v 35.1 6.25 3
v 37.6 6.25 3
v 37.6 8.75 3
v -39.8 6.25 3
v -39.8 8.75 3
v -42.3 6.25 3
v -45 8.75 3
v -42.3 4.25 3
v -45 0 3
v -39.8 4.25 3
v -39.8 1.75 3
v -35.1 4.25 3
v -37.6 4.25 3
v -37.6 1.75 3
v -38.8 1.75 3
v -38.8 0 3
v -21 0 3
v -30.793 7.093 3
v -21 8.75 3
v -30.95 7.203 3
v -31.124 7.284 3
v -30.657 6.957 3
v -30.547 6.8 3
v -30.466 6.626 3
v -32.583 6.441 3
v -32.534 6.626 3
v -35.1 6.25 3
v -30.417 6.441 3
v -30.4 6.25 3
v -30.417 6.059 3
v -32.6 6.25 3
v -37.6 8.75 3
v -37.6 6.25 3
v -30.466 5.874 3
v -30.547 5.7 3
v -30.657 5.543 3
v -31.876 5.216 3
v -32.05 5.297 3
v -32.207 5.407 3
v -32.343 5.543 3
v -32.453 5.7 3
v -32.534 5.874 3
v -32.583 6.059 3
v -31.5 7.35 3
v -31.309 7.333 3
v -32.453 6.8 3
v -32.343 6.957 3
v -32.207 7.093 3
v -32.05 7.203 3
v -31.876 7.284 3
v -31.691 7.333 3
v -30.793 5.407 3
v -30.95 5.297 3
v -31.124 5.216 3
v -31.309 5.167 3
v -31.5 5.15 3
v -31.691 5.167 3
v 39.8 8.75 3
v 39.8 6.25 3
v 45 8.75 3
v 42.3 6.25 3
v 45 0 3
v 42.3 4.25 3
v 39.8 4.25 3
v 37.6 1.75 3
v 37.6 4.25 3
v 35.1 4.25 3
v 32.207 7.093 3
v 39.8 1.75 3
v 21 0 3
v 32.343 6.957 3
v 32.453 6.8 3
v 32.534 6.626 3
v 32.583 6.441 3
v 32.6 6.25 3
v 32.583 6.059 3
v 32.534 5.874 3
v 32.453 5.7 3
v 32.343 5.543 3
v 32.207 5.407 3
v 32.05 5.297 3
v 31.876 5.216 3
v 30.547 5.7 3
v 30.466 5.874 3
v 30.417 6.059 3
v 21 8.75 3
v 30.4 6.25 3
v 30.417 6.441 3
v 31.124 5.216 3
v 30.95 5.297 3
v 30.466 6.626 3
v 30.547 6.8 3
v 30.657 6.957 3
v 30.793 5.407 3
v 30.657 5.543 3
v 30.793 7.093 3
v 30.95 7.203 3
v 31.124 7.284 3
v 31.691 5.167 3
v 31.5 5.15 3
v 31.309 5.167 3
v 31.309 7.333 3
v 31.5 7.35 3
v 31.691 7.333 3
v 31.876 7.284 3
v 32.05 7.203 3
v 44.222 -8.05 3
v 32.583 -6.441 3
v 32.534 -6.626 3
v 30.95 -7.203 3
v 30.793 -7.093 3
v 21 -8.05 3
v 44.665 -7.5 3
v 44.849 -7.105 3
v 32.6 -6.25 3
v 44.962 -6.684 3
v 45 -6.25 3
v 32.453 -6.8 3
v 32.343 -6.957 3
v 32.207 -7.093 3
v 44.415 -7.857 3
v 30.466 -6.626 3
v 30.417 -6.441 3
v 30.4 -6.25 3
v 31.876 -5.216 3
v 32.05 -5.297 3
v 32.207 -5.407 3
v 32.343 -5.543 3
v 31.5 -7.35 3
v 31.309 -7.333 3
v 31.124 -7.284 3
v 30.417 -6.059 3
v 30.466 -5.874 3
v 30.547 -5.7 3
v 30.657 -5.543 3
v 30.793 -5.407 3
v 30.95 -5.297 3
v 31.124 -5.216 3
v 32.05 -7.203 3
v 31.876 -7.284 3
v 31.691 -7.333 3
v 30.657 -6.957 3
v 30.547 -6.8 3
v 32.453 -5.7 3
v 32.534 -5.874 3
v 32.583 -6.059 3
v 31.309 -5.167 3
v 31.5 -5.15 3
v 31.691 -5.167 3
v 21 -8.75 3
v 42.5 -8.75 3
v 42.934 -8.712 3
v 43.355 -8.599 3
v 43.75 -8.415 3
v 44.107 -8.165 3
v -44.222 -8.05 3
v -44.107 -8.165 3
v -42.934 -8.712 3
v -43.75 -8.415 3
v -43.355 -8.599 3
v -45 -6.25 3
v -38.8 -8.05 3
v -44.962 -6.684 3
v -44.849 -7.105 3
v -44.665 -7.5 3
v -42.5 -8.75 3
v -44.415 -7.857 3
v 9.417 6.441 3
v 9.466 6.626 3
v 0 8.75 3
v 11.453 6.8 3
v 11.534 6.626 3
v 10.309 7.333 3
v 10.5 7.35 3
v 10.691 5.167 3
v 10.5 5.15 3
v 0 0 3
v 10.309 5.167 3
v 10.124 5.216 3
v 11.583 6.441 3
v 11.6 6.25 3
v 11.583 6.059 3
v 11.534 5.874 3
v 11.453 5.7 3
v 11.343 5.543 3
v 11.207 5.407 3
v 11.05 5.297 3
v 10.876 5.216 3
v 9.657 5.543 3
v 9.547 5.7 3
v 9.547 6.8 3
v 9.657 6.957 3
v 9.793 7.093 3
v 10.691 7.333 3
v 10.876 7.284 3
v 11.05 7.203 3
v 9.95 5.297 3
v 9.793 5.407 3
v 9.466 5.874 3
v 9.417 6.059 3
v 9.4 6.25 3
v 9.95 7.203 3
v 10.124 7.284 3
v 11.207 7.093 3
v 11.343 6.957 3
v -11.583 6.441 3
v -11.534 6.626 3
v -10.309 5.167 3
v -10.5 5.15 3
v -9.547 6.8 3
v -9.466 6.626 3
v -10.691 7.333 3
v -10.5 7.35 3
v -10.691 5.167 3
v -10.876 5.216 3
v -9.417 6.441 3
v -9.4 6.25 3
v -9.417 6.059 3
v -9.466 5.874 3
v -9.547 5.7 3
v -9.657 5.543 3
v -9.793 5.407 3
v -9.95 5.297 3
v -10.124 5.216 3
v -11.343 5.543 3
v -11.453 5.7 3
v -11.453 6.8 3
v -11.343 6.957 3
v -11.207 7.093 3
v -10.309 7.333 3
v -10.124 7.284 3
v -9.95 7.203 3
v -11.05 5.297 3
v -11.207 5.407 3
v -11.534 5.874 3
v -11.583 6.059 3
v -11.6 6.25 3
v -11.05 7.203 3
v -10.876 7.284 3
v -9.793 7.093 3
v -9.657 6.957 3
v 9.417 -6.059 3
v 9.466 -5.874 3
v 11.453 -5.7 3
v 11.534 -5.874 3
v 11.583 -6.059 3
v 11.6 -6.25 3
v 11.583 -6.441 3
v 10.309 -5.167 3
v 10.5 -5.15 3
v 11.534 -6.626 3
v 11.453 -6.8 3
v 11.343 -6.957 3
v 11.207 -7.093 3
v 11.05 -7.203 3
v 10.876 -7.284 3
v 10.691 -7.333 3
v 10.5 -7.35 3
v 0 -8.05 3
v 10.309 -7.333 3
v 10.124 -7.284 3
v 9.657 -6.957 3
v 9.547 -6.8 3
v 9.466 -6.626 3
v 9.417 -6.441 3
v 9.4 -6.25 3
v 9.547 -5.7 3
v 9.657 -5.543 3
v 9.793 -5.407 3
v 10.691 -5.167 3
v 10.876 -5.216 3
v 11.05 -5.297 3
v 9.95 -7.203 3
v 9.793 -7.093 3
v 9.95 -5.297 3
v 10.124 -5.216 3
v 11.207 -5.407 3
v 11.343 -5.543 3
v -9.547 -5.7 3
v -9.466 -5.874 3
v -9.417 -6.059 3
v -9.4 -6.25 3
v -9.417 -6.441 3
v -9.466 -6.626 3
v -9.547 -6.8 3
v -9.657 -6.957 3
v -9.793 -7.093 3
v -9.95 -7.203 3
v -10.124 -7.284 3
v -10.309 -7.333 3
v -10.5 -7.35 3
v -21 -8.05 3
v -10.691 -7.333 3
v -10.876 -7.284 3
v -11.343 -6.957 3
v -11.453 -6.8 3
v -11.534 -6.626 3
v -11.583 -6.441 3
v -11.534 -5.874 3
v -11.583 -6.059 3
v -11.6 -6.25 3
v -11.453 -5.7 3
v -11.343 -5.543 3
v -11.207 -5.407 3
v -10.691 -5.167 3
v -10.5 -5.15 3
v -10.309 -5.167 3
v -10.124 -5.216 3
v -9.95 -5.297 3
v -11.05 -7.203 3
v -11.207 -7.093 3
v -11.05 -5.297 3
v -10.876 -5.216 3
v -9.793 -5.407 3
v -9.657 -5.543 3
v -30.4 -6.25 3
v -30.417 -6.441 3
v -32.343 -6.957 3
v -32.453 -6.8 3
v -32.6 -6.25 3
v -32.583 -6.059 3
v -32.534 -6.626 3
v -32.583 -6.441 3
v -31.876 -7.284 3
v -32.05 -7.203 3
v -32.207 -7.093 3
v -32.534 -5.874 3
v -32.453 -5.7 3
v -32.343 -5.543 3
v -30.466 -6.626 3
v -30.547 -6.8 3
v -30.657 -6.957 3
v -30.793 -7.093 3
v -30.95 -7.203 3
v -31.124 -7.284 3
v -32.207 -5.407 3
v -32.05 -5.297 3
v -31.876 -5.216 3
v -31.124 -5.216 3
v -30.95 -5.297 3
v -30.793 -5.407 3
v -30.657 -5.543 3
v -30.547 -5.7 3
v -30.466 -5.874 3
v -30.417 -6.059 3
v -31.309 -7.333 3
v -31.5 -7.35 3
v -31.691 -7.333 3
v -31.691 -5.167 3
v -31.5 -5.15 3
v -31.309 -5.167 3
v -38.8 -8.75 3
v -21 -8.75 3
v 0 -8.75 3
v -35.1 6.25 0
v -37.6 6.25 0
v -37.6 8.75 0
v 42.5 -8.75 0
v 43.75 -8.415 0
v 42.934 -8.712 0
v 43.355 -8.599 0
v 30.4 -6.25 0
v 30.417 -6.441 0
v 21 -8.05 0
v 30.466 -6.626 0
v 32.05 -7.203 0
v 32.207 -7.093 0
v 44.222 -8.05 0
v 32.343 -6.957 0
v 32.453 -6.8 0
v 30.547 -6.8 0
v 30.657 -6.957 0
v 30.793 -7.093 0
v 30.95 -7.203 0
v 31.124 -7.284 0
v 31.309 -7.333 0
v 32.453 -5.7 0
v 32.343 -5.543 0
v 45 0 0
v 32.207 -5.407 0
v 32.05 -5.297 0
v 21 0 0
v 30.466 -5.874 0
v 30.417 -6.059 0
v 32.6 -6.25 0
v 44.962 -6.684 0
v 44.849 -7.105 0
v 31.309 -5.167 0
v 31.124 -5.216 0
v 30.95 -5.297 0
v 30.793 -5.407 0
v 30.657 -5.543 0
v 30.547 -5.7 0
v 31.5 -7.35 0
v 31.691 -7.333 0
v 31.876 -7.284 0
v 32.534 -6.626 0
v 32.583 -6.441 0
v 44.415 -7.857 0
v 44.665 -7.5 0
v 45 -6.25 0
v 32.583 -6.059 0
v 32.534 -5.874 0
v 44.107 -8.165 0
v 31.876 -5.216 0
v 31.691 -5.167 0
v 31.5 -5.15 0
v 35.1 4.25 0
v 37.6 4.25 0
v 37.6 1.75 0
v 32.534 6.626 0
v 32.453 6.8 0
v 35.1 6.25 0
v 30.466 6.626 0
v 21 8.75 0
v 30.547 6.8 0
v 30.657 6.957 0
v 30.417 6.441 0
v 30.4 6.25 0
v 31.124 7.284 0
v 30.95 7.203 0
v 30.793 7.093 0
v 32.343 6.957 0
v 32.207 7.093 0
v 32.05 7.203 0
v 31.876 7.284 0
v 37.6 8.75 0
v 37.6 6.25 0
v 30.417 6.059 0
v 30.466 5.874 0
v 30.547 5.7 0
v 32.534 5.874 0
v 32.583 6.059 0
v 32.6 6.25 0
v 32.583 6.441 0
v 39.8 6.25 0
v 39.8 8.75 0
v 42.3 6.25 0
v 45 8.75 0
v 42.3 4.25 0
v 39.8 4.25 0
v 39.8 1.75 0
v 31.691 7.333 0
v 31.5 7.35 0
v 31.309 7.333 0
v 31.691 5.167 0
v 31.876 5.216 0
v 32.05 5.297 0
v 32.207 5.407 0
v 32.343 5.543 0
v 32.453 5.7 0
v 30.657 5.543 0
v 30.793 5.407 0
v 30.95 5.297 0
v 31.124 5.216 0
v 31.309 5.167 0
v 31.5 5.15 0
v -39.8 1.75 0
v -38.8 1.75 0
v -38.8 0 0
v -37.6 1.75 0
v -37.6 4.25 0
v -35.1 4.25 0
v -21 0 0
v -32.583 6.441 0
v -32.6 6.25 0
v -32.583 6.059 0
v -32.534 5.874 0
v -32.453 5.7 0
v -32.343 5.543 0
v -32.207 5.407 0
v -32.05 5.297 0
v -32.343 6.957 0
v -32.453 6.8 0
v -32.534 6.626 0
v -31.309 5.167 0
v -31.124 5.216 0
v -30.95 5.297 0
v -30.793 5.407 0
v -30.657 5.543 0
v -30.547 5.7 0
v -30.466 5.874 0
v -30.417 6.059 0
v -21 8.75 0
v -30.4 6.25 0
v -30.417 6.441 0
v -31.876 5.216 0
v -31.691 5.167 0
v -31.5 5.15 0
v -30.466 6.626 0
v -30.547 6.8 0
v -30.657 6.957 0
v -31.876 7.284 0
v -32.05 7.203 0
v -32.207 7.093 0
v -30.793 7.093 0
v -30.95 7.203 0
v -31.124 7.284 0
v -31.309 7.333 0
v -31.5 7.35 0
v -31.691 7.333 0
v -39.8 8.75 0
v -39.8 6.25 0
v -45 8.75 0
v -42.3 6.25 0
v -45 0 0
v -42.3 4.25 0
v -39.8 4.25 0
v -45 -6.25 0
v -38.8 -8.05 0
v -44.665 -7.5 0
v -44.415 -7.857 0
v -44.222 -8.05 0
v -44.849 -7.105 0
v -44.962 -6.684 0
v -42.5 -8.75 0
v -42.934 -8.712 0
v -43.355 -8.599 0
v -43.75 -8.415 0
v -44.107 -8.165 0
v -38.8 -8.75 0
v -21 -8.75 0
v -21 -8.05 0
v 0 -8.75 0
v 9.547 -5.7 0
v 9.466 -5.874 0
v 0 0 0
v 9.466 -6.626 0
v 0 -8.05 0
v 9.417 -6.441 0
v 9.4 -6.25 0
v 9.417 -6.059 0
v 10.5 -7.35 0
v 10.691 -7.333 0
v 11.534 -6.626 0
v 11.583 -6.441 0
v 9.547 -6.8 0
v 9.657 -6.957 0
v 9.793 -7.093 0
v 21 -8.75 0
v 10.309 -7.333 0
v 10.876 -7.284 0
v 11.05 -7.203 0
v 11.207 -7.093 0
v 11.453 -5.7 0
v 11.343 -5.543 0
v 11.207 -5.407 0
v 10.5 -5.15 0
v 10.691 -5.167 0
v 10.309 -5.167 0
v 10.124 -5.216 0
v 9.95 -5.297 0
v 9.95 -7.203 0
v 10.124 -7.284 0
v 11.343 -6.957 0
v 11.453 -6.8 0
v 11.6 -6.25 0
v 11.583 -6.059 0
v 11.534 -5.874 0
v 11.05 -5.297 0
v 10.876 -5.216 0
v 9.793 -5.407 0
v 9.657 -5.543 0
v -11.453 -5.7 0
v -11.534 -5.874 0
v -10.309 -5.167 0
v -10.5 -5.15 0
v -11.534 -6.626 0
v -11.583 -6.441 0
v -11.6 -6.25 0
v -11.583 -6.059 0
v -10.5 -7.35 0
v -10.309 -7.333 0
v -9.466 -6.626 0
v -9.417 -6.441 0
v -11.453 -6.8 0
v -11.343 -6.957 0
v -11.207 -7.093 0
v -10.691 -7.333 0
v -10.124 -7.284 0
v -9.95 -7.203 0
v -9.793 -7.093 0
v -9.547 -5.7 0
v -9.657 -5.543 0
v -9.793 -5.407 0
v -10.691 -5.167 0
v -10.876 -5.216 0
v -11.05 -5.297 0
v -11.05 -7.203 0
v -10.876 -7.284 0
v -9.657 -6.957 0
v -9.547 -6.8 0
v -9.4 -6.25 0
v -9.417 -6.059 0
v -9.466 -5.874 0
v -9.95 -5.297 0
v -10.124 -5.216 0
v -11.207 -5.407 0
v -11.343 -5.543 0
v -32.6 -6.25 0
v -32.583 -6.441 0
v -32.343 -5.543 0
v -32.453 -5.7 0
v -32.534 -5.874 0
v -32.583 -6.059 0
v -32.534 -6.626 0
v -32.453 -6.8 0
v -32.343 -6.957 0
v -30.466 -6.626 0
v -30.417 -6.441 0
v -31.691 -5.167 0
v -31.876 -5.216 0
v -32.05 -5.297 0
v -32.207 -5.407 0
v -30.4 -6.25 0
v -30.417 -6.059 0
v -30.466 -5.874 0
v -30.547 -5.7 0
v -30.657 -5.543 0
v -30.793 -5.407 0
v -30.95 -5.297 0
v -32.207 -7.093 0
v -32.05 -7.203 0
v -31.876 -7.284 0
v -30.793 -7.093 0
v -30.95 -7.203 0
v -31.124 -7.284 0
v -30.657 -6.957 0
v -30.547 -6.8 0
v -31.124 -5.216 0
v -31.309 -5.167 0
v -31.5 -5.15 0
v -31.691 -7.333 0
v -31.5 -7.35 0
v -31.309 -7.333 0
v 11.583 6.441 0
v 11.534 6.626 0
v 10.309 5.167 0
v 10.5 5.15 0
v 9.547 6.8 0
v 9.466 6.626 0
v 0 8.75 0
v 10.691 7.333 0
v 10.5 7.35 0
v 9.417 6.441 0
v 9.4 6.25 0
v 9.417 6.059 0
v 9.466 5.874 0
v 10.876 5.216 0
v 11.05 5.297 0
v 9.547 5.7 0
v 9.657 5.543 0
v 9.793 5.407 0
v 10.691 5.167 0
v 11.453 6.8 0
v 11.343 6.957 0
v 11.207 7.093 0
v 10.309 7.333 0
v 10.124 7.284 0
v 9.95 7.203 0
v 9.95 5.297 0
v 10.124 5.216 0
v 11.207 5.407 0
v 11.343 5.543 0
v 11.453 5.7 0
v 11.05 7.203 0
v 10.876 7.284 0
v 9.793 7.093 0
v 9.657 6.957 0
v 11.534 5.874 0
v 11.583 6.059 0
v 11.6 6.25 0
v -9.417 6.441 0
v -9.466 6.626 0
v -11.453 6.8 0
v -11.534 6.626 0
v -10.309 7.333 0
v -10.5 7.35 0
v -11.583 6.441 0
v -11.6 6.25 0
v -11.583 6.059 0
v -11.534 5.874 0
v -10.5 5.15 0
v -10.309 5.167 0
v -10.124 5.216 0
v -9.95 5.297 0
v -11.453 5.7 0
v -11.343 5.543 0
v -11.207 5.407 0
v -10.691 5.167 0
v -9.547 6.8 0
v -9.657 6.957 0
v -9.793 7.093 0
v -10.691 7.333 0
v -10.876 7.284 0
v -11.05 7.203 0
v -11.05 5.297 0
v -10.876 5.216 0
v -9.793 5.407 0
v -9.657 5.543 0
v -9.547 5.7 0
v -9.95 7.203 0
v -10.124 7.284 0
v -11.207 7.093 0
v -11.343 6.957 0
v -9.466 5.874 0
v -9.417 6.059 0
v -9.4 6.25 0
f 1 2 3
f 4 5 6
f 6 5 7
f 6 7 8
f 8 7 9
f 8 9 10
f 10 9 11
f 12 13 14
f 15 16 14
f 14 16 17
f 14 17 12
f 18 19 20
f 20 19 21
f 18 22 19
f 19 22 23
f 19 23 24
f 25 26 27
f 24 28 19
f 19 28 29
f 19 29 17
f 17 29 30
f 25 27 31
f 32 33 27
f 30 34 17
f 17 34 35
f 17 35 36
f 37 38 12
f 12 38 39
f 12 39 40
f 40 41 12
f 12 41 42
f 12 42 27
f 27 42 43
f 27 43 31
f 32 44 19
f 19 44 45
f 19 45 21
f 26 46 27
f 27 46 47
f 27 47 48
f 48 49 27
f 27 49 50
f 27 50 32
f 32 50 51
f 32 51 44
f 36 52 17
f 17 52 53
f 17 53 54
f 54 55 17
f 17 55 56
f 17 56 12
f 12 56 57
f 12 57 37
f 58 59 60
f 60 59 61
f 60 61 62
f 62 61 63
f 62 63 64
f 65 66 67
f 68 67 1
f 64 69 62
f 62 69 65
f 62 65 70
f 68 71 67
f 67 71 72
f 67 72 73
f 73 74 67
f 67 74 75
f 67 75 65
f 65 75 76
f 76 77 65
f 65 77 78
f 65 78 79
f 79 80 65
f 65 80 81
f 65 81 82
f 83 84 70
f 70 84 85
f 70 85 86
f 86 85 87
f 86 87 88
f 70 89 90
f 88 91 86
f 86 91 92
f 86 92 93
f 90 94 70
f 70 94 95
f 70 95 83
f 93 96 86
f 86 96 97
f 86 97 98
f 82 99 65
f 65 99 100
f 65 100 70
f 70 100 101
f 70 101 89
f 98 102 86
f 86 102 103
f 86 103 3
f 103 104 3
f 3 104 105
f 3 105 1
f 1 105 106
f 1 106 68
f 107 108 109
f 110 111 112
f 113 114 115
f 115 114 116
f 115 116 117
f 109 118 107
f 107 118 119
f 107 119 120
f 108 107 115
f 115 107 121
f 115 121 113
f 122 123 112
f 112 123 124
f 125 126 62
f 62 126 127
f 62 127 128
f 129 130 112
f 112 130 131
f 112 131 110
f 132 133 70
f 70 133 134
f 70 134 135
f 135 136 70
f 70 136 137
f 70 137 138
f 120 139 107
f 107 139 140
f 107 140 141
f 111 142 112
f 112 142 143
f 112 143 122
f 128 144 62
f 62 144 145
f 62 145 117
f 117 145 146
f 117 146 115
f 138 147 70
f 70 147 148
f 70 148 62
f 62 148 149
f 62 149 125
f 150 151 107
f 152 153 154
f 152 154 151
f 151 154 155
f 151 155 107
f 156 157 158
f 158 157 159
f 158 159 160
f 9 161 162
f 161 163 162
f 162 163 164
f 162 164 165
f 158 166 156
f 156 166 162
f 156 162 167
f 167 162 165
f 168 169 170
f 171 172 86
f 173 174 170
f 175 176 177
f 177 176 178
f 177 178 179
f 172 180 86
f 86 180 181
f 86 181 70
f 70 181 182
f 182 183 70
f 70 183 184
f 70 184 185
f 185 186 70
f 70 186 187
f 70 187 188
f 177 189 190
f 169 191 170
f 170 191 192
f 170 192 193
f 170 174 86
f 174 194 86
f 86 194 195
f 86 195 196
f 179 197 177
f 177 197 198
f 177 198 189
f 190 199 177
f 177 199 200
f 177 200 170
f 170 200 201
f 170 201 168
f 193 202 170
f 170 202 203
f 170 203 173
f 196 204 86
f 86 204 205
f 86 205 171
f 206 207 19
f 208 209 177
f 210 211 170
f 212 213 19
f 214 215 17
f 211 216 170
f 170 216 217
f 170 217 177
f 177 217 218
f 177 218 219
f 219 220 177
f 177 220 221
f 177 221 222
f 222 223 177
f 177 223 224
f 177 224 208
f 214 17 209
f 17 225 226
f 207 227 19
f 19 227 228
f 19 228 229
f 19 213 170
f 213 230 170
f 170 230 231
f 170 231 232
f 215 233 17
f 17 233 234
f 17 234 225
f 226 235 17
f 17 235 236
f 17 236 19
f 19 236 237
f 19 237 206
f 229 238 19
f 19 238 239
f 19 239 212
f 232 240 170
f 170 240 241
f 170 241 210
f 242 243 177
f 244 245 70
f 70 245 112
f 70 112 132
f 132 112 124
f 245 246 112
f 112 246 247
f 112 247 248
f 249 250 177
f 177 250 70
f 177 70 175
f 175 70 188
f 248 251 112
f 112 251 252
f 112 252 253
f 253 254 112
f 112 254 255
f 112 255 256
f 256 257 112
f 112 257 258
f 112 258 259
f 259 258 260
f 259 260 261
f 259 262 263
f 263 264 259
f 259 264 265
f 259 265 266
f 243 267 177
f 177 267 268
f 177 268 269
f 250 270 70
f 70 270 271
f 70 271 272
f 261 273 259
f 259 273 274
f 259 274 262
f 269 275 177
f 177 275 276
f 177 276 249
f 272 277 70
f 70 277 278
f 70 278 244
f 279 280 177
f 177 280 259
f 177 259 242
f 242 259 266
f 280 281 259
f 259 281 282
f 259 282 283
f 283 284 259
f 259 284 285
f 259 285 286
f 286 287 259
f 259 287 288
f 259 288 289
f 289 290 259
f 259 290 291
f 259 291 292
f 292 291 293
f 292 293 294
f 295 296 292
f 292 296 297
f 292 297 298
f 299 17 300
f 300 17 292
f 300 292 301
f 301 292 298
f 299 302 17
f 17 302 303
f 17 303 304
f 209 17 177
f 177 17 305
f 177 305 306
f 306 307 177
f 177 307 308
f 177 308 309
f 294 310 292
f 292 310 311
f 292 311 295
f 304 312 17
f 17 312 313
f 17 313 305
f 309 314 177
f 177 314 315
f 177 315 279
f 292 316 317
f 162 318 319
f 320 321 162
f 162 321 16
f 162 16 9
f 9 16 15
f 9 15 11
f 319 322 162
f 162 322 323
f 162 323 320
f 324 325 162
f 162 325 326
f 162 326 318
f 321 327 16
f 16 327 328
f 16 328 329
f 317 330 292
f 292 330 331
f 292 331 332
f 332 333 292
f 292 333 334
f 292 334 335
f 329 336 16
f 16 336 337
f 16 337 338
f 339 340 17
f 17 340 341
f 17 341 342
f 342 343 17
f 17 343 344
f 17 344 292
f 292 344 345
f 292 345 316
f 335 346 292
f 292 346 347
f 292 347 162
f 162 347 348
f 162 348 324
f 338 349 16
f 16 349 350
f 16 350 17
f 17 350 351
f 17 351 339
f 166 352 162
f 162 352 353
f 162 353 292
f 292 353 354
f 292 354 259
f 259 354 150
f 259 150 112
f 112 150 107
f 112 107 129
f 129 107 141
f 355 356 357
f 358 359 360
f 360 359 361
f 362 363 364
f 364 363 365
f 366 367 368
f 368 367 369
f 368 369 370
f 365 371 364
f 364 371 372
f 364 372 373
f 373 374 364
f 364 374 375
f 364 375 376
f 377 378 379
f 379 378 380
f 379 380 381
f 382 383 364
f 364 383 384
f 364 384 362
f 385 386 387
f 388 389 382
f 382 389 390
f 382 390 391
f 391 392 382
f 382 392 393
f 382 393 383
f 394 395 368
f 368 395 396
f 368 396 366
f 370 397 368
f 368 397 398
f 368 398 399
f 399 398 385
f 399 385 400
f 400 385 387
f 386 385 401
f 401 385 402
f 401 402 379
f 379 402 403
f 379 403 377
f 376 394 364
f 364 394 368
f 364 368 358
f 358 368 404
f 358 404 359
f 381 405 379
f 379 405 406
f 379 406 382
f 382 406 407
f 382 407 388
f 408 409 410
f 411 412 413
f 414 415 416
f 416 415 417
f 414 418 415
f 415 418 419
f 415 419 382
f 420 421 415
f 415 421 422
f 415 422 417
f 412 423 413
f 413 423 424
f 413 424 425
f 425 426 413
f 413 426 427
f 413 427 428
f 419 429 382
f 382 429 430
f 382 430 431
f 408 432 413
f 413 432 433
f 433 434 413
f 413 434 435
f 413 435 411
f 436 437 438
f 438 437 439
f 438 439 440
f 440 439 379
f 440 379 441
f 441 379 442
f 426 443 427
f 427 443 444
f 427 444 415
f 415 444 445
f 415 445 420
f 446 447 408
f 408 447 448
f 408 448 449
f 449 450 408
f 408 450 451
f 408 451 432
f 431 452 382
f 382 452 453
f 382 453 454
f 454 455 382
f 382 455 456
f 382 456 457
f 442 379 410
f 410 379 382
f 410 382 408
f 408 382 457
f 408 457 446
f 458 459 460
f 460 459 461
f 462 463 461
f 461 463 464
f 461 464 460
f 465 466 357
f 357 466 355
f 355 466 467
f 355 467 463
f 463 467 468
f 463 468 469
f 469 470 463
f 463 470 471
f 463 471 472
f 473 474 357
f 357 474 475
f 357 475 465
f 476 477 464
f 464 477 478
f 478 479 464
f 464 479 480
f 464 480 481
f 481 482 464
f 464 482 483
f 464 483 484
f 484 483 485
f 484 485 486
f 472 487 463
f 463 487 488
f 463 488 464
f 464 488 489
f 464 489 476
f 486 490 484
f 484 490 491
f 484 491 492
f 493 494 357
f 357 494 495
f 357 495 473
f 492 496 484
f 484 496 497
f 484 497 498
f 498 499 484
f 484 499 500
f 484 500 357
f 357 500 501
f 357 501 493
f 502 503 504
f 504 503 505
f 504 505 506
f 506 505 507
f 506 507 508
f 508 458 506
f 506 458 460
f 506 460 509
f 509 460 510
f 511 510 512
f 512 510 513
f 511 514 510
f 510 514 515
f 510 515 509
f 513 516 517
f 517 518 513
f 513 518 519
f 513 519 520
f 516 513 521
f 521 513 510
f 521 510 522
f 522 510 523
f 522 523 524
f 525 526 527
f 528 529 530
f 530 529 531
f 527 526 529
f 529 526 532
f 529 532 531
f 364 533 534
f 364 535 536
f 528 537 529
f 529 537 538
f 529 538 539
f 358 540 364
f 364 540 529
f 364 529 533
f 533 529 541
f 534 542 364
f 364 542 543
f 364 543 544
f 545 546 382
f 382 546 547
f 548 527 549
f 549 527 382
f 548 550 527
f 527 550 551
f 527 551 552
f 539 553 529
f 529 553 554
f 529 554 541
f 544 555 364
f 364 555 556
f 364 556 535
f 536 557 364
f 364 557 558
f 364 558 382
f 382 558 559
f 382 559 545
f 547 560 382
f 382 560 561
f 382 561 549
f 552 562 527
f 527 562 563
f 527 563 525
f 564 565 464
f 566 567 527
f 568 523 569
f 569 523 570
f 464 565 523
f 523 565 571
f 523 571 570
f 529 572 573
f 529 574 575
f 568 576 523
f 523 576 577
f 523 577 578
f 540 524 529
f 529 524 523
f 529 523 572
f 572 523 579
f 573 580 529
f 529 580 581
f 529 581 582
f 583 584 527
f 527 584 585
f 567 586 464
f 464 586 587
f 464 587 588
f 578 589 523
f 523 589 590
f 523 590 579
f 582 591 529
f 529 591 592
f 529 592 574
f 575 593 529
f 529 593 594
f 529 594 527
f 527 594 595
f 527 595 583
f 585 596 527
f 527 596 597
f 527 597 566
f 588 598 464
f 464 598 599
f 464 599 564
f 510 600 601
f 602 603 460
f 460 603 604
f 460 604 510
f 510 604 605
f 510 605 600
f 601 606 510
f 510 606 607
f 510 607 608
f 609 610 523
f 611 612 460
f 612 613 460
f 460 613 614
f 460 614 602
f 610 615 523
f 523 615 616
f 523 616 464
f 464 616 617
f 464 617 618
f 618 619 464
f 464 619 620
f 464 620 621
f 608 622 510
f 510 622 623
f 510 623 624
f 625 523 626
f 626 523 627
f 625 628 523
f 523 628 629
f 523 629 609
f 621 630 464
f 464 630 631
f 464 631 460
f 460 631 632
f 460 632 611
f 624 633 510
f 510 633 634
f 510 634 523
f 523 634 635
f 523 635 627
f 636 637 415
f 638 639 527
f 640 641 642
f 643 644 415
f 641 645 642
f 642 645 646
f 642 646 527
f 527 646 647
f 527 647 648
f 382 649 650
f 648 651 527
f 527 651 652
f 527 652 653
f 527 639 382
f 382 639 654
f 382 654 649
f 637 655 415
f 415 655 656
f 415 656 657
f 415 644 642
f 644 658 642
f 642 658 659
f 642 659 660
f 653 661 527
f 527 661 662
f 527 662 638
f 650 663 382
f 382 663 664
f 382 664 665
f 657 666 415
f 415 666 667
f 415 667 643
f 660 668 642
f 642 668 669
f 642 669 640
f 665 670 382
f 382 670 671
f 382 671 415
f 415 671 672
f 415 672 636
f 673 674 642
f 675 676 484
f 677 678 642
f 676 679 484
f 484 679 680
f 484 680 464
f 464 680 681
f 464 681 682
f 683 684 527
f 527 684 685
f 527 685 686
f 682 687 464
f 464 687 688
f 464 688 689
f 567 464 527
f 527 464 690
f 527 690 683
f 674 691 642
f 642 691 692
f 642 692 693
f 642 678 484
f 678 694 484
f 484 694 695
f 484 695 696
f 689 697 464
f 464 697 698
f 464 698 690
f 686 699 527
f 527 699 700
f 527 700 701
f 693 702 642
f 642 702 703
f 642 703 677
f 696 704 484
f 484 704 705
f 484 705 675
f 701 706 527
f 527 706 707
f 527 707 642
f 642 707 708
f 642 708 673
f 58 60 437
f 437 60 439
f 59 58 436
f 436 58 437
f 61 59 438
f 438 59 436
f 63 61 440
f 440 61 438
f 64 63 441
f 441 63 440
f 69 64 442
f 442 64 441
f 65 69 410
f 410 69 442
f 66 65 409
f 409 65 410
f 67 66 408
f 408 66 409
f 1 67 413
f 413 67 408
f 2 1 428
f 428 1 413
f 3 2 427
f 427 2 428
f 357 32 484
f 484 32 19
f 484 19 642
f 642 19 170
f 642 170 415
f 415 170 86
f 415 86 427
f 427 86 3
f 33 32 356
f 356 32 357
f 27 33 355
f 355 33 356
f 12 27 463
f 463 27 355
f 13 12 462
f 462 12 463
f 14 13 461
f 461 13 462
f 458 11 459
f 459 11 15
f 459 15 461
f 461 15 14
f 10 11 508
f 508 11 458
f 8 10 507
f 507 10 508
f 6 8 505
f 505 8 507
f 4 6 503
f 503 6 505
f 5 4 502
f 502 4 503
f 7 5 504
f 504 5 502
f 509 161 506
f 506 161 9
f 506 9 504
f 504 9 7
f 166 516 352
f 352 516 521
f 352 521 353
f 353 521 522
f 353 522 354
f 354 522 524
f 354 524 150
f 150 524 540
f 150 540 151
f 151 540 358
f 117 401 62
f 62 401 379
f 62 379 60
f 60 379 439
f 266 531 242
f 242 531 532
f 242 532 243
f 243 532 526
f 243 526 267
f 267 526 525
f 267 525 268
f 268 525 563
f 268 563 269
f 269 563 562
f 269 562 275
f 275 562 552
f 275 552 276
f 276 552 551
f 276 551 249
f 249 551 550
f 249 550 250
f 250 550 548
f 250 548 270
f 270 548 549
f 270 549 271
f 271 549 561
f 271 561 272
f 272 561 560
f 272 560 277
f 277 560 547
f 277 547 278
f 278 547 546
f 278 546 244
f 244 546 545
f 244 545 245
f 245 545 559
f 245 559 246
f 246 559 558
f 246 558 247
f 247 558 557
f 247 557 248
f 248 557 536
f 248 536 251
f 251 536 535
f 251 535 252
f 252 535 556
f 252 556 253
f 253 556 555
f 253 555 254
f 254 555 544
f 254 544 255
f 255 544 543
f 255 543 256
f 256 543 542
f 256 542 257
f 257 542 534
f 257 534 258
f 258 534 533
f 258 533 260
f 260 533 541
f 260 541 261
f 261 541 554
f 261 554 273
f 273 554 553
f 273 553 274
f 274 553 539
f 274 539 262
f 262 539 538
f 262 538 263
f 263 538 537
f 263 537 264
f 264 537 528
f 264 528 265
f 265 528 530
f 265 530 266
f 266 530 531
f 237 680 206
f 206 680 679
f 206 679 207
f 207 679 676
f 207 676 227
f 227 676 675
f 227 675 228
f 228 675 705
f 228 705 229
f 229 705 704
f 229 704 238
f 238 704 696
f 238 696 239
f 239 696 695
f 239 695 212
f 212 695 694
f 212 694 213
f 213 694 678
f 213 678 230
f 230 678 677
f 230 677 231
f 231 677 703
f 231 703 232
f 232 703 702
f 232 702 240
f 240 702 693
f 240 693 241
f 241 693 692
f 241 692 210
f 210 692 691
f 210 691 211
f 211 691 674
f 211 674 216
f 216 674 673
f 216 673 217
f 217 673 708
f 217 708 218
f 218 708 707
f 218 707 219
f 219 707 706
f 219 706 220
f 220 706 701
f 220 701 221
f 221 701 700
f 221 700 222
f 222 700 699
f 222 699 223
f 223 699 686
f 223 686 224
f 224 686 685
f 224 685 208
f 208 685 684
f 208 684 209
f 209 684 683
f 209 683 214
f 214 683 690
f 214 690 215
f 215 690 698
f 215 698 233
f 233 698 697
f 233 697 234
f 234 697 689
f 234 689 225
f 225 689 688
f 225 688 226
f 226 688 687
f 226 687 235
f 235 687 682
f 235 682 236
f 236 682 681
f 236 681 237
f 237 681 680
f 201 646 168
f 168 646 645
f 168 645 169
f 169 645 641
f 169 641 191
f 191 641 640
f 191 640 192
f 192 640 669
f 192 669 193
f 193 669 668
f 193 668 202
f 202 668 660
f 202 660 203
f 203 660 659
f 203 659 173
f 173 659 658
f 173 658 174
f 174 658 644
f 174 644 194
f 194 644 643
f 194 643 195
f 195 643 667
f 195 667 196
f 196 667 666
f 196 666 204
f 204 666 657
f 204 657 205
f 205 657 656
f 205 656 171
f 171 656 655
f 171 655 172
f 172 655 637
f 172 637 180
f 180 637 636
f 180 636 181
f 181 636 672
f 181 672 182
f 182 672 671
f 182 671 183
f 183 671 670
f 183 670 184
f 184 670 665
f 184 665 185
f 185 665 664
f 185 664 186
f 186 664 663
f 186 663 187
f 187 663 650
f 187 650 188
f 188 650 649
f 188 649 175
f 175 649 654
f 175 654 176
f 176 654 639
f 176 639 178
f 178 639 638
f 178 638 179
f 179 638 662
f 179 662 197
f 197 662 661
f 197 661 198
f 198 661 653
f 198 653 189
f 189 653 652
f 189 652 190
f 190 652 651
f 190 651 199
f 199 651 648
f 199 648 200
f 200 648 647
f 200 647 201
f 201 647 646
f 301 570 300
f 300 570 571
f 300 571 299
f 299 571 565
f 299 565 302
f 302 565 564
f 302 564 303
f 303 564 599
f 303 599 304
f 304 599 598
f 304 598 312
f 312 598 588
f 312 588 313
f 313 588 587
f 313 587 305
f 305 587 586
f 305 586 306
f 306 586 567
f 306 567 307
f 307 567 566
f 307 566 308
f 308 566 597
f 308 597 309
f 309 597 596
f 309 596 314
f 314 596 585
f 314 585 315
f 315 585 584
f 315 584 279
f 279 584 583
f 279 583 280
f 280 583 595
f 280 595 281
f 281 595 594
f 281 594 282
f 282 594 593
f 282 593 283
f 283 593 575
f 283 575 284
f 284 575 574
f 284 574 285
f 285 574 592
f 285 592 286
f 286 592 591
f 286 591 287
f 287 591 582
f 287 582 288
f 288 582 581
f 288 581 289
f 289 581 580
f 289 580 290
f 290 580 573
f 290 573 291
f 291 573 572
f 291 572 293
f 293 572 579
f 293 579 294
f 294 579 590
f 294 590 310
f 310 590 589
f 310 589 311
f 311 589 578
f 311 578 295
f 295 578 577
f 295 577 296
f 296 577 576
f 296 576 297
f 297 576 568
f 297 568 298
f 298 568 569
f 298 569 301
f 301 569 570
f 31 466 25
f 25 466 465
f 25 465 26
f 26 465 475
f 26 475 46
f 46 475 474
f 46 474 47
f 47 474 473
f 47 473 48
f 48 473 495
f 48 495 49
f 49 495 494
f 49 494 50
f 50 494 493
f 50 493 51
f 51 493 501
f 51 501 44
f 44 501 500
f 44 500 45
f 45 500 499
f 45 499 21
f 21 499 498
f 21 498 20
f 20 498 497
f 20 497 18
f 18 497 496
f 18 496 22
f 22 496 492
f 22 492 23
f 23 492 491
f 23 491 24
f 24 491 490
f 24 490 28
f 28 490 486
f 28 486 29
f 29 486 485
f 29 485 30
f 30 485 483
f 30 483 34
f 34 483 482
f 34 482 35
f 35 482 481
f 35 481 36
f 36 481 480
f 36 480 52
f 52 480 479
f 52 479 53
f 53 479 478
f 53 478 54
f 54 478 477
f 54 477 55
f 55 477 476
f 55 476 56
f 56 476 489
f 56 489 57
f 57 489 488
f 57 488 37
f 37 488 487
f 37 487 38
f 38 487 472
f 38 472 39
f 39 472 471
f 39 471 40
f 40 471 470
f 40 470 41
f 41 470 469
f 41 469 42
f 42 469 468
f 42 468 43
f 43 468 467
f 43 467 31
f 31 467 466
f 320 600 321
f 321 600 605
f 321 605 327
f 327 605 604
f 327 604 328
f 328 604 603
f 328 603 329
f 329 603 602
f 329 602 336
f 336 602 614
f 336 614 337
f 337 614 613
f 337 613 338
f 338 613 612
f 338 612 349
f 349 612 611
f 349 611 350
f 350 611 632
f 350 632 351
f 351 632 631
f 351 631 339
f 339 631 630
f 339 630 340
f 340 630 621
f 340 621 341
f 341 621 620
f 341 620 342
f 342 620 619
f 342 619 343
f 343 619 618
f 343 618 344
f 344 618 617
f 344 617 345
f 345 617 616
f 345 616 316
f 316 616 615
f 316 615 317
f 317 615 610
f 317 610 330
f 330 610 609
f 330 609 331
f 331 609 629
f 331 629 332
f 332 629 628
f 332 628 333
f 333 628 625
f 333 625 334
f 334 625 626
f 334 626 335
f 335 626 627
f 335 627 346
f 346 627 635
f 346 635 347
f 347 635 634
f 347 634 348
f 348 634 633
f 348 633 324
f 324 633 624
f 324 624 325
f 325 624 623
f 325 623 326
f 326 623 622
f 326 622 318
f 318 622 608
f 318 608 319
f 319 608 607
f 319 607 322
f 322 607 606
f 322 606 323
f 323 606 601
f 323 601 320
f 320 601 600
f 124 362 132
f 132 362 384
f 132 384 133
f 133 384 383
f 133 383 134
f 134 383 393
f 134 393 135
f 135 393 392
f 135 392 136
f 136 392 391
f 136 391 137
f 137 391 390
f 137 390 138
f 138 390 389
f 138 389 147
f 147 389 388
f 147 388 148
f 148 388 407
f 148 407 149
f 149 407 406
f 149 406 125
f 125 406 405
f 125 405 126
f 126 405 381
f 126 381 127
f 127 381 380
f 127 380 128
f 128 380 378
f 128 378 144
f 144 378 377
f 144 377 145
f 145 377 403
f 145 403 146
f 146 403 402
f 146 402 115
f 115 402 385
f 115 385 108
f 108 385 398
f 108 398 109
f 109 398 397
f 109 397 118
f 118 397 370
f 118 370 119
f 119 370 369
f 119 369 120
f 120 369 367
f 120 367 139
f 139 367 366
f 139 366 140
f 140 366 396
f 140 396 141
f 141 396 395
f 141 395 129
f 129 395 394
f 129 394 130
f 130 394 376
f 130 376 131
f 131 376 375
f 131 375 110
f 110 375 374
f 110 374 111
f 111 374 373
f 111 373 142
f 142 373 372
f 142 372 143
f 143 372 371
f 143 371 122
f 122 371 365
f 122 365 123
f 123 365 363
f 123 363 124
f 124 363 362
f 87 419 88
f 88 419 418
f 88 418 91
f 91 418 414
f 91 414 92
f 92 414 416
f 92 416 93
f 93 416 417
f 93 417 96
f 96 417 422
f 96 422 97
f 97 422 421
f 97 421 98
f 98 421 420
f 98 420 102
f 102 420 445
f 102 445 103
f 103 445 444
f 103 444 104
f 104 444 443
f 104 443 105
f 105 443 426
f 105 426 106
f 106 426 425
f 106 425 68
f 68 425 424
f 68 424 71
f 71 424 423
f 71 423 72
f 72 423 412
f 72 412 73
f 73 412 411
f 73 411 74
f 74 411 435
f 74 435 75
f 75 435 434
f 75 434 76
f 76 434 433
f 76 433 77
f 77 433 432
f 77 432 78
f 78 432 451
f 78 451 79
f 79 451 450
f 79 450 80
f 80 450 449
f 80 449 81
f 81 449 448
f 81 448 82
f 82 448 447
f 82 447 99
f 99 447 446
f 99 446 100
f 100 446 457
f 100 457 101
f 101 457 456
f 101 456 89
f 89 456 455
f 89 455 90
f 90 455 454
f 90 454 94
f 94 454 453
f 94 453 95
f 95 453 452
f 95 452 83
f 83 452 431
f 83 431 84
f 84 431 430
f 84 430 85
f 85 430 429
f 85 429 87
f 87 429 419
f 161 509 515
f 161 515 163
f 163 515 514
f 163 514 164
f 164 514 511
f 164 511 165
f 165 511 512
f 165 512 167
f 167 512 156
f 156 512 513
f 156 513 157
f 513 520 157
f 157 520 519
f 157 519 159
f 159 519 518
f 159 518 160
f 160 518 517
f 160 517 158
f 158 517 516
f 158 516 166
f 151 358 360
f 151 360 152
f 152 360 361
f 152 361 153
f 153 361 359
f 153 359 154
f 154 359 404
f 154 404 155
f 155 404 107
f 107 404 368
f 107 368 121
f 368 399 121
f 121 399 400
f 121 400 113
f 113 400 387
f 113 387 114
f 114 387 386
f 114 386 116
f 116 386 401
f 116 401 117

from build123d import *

# Parameters (mm, degrees)
SKETCH1_R           = 1.1
BOSS_EXTRUDE1_DEPTH = 3
FILLET1_R           = 2.5


with BuildPart() as part:
    # Sketch1 → Boss-Extrude1 (new body)
    with BuildSketch(Plane.XY):
        Polygon((-45, -8.75), (45, -8.75), (45, 8.75), (39.8, 8.75), (39.8, 6.25), (42.3, 6.25), (42.3, 4.25), (39.8, 4.25), (39.8, 1.75), (37.6, 1.75), (37.6, 4.25), (35.1, 4.25), (35.1, 6.25), (37.6, 6.25), (37.6, 8.75), (-37.6, 8.75), (-37.6, 6.25), (-35.1, 6.25), (-35.1, 4.25), (-37.6, 4.25), (-37.6, 1.75), (-39.8, 1.75), (-39.8, 4.25), (-42.3, 4.25), (-42.3, 6.25), (-39.8, 6.25), (-39.8, 8.75), (-45, 8.75), align=None)
        with Locations((-10.5, 6.25)):
            Circle(SKETCH1_R, mode=Mode.SUBTRACT)
        with Locations(Location((-10.5, -6.25, 0), (0, 0, 180))):
            Circle(SKETCH1_R, mode=Mode.SUBTRACT)
        with Locations((10.5, -6.25)):
            Circle(SKETCH1_R, mode=Mode.SUBTRACT)
        with Locations(Location((10.5, 6.25, 0), (0, 0, 180))):
            Circle(SKETCH1_R, mode=Mode.SUBTRACT)
        with Locations((-31.5, 6.25)):
            Circle(SKETCH1_R, mode=Mode.SUBTRACT)
        with Locations(Location((-31.5, -6.25, 0), (0, 0, 180))):
            Circle(SKETCH1_R, mode=Mode.SUBTRACT)
        with Locations((31.5, -6.25)):
            Circle(SKETCH1_R, mode=Mode.SUBTRACT)
        with Locations(Location((31.5, 6.25, 0), (0, 0, 180))):
            Circle(SKETCH1_R, mode=Mode.SUBTRACT)
    extrude(amount=BOSS_EXTRUDE1_DEPTH)

    # Fillet1
    fillet1_edges = [part.edges().sort_by_distance(p)[0] for p in [
        (45, -8.75, 1.5),
        (-45, -8.75, 1.5),
    ]]
    fillet(fillet1_edges, radius=FILLET1_R)


solid = part.part
